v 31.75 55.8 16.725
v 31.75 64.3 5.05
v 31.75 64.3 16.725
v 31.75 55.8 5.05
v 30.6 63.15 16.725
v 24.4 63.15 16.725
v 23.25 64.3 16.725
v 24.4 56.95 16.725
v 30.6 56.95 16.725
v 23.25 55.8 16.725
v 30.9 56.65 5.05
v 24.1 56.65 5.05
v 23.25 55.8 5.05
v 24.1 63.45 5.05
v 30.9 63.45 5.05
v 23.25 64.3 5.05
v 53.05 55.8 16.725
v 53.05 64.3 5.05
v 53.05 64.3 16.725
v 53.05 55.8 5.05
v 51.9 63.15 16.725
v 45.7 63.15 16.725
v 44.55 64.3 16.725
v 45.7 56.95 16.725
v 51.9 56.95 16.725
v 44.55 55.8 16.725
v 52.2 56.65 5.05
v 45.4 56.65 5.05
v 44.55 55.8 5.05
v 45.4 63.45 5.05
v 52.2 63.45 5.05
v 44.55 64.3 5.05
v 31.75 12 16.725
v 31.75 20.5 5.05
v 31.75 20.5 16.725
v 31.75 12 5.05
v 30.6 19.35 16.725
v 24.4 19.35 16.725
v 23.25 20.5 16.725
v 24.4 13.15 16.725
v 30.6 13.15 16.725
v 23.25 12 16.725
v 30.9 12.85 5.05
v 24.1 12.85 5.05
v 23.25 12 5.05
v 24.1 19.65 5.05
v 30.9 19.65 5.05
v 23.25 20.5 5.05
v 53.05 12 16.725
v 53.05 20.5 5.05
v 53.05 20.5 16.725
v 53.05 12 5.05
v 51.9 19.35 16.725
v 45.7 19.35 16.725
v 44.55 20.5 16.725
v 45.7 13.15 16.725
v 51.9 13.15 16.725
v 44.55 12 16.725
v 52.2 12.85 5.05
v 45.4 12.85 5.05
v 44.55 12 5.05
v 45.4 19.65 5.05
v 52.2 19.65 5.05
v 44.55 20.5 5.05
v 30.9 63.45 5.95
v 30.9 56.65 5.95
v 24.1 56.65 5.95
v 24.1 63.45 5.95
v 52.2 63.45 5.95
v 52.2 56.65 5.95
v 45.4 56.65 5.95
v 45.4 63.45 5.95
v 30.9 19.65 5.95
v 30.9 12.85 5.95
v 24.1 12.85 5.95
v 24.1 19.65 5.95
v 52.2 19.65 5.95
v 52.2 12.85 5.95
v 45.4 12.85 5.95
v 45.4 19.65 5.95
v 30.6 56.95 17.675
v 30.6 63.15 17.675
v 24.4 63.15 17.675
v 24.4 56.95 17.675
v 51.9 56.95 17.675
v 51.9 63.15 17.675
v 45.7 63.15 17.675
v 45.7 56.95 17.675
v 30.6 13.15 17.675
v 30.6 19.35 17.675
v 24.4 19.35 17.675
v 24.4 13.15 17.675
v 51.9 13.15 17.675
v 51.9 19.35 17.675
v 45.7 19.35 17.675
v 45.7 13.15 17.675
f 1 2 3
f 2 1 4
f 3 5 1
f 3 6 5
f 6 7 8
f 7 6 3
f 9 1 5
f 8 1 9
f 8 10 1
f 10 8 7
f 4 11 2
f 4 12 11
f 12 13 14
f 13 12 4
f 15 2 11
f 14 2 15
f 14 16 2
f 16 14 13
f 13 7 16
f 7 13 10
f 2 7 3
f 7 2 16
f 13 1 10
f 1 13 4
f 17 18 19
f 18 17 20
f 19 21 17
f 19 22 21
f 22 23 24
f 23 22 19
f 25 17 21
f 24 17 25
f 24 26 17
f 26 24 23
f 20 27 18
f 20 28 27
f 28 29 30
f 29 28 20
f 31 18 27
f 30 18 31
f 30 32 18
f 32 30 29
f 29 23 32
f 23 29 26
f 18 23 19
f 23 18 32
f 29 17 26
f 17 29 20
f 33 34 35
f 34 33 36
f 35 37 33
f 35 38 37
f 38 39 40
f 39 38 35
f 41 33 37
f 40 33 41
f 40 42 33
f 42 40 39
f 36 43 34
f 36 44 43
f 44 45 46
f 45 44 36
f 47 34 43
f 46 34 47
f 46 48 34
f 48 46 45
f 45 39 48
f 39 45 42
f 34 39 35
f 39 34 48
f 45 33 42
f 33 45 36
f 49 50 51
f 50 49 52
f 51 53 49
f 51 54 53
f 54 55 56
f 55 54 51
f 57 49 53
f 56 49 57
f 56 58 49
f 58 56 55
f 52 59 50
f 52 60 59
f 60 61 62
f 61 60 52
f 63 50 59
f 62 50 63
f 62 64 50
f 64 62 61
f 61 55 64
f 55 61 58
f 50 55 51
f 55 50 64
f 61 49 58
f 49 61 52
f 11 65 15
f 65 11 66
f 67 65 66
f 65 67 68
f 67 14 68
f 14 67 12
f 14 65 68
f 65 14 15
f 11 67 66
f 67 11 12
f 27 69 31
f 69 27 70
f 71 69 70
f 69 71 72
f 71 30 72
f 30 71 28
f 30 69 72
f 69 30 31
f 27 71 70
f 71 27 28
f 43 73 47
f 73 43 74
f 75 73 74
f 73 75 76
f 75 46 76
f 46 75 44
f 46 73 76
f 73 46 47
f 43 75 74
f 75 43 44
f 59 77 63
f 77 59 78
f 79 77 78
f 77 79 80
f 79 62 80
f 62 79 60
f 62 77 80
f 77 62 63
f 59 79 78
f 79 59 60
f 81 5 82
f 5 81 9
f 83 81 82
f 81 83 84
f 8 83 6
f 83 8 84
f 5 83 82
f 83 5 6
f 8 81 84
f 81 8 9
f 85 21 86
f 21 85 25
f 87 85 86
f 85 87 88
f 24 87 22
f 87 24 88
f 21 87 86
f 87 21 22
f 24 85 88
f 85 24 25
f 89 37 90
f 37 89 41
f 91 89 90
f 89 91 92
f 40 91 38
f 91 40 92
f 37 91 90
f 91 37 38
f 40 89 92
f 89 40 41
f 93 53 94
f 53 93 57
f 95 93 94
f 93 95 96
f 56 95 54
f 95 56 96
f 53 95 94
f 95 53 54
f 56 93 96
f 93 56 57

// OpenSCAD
// file: module_Cubo.scad
module Cubo(){
    difference(){
        cube([50,50,50]);
        #translate([2.5,2.5,2.5])cube(45);
        #translate([25,25,0])cylinder(h=2.5,r1=15,r2=15);
        #translate([25,25,47.5])cylinder(h=2.5,r1=15,r2=15);
        rotate([90,0,0])translate([25,25,-2.5])cylinder(h=2.5,r1=15,r2=15);
        rotate([90,0,0])translate([25,25,-50])cylinder(h=2.5,r1=15,r2=15);
        rotate([0,90,0])translate([-25,25,])cylinder(h=2.5,r1=15,r2=15);
        rotate([0,90,0])translate([-25,25,47.5])cylinder(h=2.5,r1=15,r2=15);
    }
}
// main file
// ----- ----- Declaração de Variáveis ----- ----- //

res=10;

folga1=0.15;
folga2=0.05;

cubo=50;

ds_splh=(44+40)/2;
d_splh=ds_splh/12; //3.5

diff_splh_x=17;
diff_splh_y=10;
diff_splh_z=19.25;

raio_bobina=12.5;

xeuss_x=76.3;
xeuss_y=76.3;
xeuss_z=5;

xt=14;
yt=89.8-xeuss_y;
zt=xeuss_z;

rx=6.6/2;
tr_x=13.65;
tr_cil=10+rx;
cc = (56.5+43.45)/2;

Xdelize=xeuss_x;
Ydelize=25;
Zdelize=11.7-xeuss_z;

alt_poly=15-Zdelize-xeuss_z;
esp_poly=2.5;
apt_poly=7.4;
poly5=5;

x_encaixe=xeuss_x-2*poly5;
y_encaixe=20;
z_encaixe=3;

splh_x=20;
splh_y=10;
splh_z=60.35-z_encaixe;
r_splh=1;

alt_bob=11;

esp_pottop=3;
long_pottop=6.5;
alt_quad=5;
trans_aux2=-diff_splh_z/2-cubo/2+xeuss_z+Zdelize+splh_z-splh_x/2+diff_splh_x/2+z_encaixe-folga1-esp_pottop-alt_bob-alt_quad;
desce_enough=trans_aux2-xeuss_z-folga2;
gordura=1;

// ----- ----- Declaração de Bibliotecas ----- ----- //
use <funcoes_GFCx.scad>
use <module_Cubo.scad>
use <module_MontagemDoCubo.scad>

//não apague, mas também não descomente
//translate([tr_x,xeuss_y,0])cube([xt,yt,zt]); 

// ----- ----- Declaração de Funções ----- ----- //
module pottop(param,param2,folga,alt){
    translate([-param-folga,-param-folga,-param-folga]){
        cube([param+param2,param,param+param2]);
        cube([param,param+param2,param+param2]);
        translate([0,0,-alt])cube([param+param2,param+param2,param+alt]);
    }
}

/*
// ----- ----- Base Atuador Manual Linear ----- ----- //
difference(){
    translate([0,0,0])cube([xeuss_x,xeuss_y,xeuss_z]);
    translate([tr_cil,tr_cil,0]){
        #translate([0,0,0])cylinder(xeuss_z,rx+folga1,rx+folga1,$fn=res);
        #translate([cc,0,0])cylinder(xeuss_z,rx+folga1,rx+folga1,$fn=res);
        #translate([0,cc,0])cylinder(xeuss_z,rx+folga1,rx+folga1,$fn=res);
        #translate([cc,cc,0])cylinder(xeuss_z,rx+folga1,rx+folga1,$fn=res);
    }
}

// ----- ----- Suporte de Amostras ----- ----- //
translate([0,xeuss_y/2-Ydelize/2,xeuss_z])cube([Xdelize,Ydelize,Zdelize]);
translate([0,xeuss_y/2-Ydelize/2,xeuss_z+Zdelize]){
    linear_extrude(alt_poly)polygon([[0,0],[xeuss_x,0],[xeuss_x,apt_poly],[xeuss_x-poly5,esp_poly-folga1],[poly5,esp_poly-folga1]]);
    translate([0,Ydelize,0])linear_extrude(alt_poly)polygon([[0,0],[xeuss_x,0],[xeuss_x,-apt_poly],[xeuss_x-poly5,-esp_poly+folga1],[poly5,-esp_poly+folga1]]);
}
translate([poly5,xeuss_y/2-Ydelize/2+esp_poly,xeuss_z+Zdelize]){
    cube([x_encaixe,y_encaixe,z_encaixe]);
    difference(){
        translate([x_encaixe/2-splh_x/2,y_encaixe/2-splh_y/2,z_encaixe])cube([splh_x,splh_y,splh_z]);
        #translate([x_encaixe/2-splh_x/2+splh_x/2-diff_splh_x/2,y_encaixe/2-splh_y/2,splh_z-(splh_x/2-diff_splh_x/2)-diff_splh_z+z_encaixe])
        #cube([diff_splh_x,diff_splh_y,diff_splh_z]);
        #translate([0,0,-10])
        #translate([x_encaixe/2-splh_x/2+splh_x/2-(4*d_splh)/2,y_encaixe/2,splh_z-(splh_x/2-diff_splh_x/2)-diff_splh_z+z_encaixe])
        #funcao_2d_array_cilindros(r_splh,d_splh,10+splh_x/2-diff_splh_x/2+diff_splh_z,5,1,1,res,"Conjunto Sample Holder");
        #translate([0,0,-10])
        #translate([x_encaixe/2-splh_x/2+splh_x/2-(d_splh*4)/2,y_encaixe/2,splh_z-(splh_x/2-diff_splh_x/2)-diff_splh_z+z_encaixe])
        #3d_array_sp_cb(1,1,1,1,d_splh,30,5,1,1,1,"sphere",res,"Conjunto Sample Holder Esferas");
    }
}

difference(){
    translate([xeuss_x/2-cubo/2,xeuss_x/2-cubo/2,0])
    translate([0,0,splh_z-(splh_x/2-diff_splh_x/2)-diff_splh_z+z_encaixe])
    translate([0,0,xeuss_z+Zdelize])
    translate([0,0,diff_splh_z/2-cubo/2]){
        MontagemDoCubo();
        //Cubo();
        
        pottop(esp_pottop,long_pottop,folga1,alt_bob);
        translate([50,0,0])rotate([0,0,90])pottop(esp_pottop,long_pottop,folga1,alt_bob);
        translate([50,50,0])rotate([0,0,2*90])pottop(esp_pottop,long_pottop,folga1,alt_bob);
        translate([0,50,0])rotate([0,0,3*90])pottop(esp_pottop,long_pottop,folga1,alt_bob);

        translate([-folga1-esp_pottop,-folga1-esp_pottop,-folga1-esp_pottop-alt_bob-alt_quad])
        cube([cubo+2*esp_pottop+2*folga1,cubo+2*esp_pottop+2*folga1,alt_quad]);
        
        translate([0,0,-desce_enough-folga2]){
            translate([(long_pottop+esp_pottop)*1.5,esp_pottop,0])
            translate([-folga1-esp_pottop,-folga1-esp_pottop,-folga1-esp_pottop-alt_bob-alt_quad])
            cube([long_pottop,long_pottop,desce_enough]);
            translate([-(long_pottop+esp_pottop)*1.5,esp_pottop,0])
            translate([cubo+2*esp_pottop+2*folga1-long_pottop,0,0])
            translate([-folga1-esp_pottop,-folga1-esp_pottop,-folga1-esp_pottop-alt_bob-alt_quad])
            cube([long_pottop,long_pottop,desce_enough]);
            translate([0,cubo+2*esp_pottop+2*folga1-long_pottop-esp_pottop,0]){
                translate([(long_pottop+esp_pottop)*1.5,0,0])
                translate([-folga1-esp_pottop,-folga1-esp_pottop,-folga1-esp_pottop-alt_bob-alt_quad])
                cube([long_pottop,long_pottop,desce_enough]);
                translate([-(long_pottop+esp_pottop)*1.5,0,0])
                translate([cubo+2*esp_pottop+2*folga1-long_pottop,0,0])
                translate([-folga1-esp_pottop,-folga1-esp_pottop,-folga1-esp_pottop-alt_bob-alt_quad])
                cube([long_pottop,long_pottop,desce_enough]);
            }
        }
    }
    #translate([poly5,xeuss_y/2-Ydelize/2+esp_poly,xeuss_z+Zdelize])
    #translate([x_encaixe/2-(splh_x*1.2)/2,y_encaixe/2-(splh_y*1.2)/2,z_encaixe])
    #cube([splh_x*1.2,splh_y*1.2,splh_z*0.2]);
    
    #translate([0,0,gordura])
    #translate([xeuss_x/2-cubo/2,xeuss_x/2-cubo/2,0])
    #translate([0,0,splh_z-(splh_x/2-diff_splh_x/2)-diff_splh_z+z_encaixe])
    #translate([0,0,xeuss_z+Zdelize])
    #translate([0,0,diff_splh_z/2-cubo/2])
    translate([0,0,-desce_enough-folga2]){
        translate([(long_pottop+esp_pottop)*1.5,esp_pottop,0])
        translate([-folga1-esp_pottop,-folga1-esp_pottop,-folga1-esp_pottop-alt_bob-alt_quad])
        cube([long_pottop,long_pottop,desce_enough]);
        translate([-(long_pottop+esp_pottop)*1.5,esp_pottop,0])
        translate([cubo+2*esp_pottop+2*folga1-long_pottop,0,0])
        translate([-folga1-esp_pottop,-folga1-esp_pottop,-folga1-esp_pottop-alt_bob-alt_quad])
        cube([long_pottop,long_pottop,desce_enough]);
        translate([0,cubo+2*esp_pottop+2*folga1-long_pottop-esp_pottop,0]){
            translate([(long_pottop+esp_pottop)*1.5,0,0])
            translate([-folga1-esp_pottop,-folga1-esp_pottop,-folga1-esp_pottop-alt_bob-alt_quad])
            cube([long_pottop,long_pottop,desce_enough]);
            translate([-(long_pottop+esp_pottop)*1.5,0,0])
            translate([cubo+2*esp_pottop+2*folga1-long_pottop,0,0])
            translate([-folga1-esp_pottop,-folga1-esp_pottop,-folga1-esp_pottop-alt_bob-alt_quad])
            cube([long_pottop,long_pottop,desce_enough]);
        }
    }
}
*/
difference(){
    translate([0,0,folga2])
    translate([xeuss_x/2-cubo/2,xeuss_x/2-cubo/2,0])
    translate([0,0,splh_z-(splh_x/2-diff_splh_x/2)-diff_splh_z+z_encaixe])
    translate([0,0,xeuss_z+Zdelize])
    translate([0,0,diff_splh_z/2-cubo/2])
    translate([0,0,-desce_enough-folga2]){
        translate([-gordura,-gordura,0])
        translate([(long_pottop+esp_pottop)*1.5,esp_pottop,0])
        translate([-folga1-esp_pottop,-folga1-esp_pottop,-folga1-esp_pottop-alt_bob-alt_quad])
        cube([long_pottop+2*gordura,long_pottop+2*gordura,desce_enough-folga2]);
        translate([-gordura,-gordura,0])
        translate([-(long_pottop+esp_pottop)*1.5,esp_pottop,0])
        translate([cubo+2*esp_pottop+2*folga1-long_pottop,0,0])
        translate([-folga1-esp_pottop,-folga1-esp_pottop,-folga1-esp_pottop-alt_bob-alt_quad])
        cube([long_pottop+2*gordura,long_pottop+2*gordura,desce_enough-folga2]);
        translate([0,cubo+2*esp_pottop+2*folga1-long_pottop-esp_pottop,0]){
            translate([-gordura,-gordura,0])
            translate([(long_pottop+esp_pottop)*1.5,0,0])
            translate([-folga1-esp_pottop,-folga1-esp_pottop,-folga1-esp_pottop-alt_bob-alt_quad])
            cube([long_pottop+2*gordura,long_pottop+2*gordura,desce_enough-folga2]);
            translate([-gordura,-gordura,0])
            translate([-(long_pottop+esp_pottop)*1.5,0,0])
            translate([cubo+2*esp_pottop+2*folga1-long_pottop,0,0])
            translate([-folga1-esp_pottop,-folga1-esp_pottop,-folga1-esp_pottop-alt_bob-alt_quad])
            cube([long_pottop+2*gordura,long_pottop+2*gordura,desce_enough-folga2]);
        }
    }
    #translate([0,0,-folga2])
    #translate([xeuss_x/2-cubo/2,xeuss_x/2-cubo/2,0])
    #translate([0,0,splh_z-(splh_x/2-diff_splh_x/2)-diff_splh_z+z_encaixe])
    #translate([0,0,xeuss_z+Zdelize])
    #translate([0,0,diff_splh_z/2-cubo/2])
    #translate([0,0,-desce_enough-folga2]){
        #translate([-folga1,-folga1,0])
        #translate([(long_pottop+esp_pottop)*1.5,esp_pottop,0])
        #translate([-folga1-esp_pottop,-folga1-esp_pottop,-folga1-esp_pottop-alt_bob-alt_quad])
        #cube([long_pottop+2*folga1,long_pottop+2*folga1,gordura]);
        #translate([-folga1,-folga1,0])
        #translate([-(long_pottop+esp_pottop)*1.5,esp_pottop,0])
        #translate([cubo+2*esp_pottop+2*folga1-long_pottop,0,0])
        #translate([-folga1-esp_pottop,-folga1-esp_pottop,-folga1-esp_pottop-alt_bob-alt_quad])
        #cube([long_pottop+2*folga1,long_pottop+2*folga1,gordura]);
        #translate([0,cubo+2*esp_pottop+2*folga1-long_pottop-esp_pottop,0]){
            #translate([-folga1,-folga1,0])
            #translate([(long_pottop+esp_pottop)*1.5,0,0])
            #translate([-folga1-esp_pottop,-folga1-esp_pottop,-folga1-esp_pottop-alt_bob-alt_quad])
            #cube([long_pottop+2*folga1,long_pottop+2*folga1,gordura]);
            #translate([-folga1,-folga1,0])
            #translate([-(long_pottop+esp_pottop)*1.5,0,0])
            #translate([cubo+2*esp_pottop+2*folga1-long_pottop,0,0])
            #translate([-folga1-esp_pottop,-folga1-esp_pottop,-folga1-esp_pottop-alt_bob-alt_quad])
            #cube([long_pottop+2*folga1,long_pottop+2*folga1,gordura]);
        }
    }
}


translate([0,0,gordura+folga2])
translate([xeuss_x/2-cubo/2,xeuss_x/2-cubo/2,0])
translate([0,0,splh_z-(splh_x/2-diff_splh_x/2)-diff_splh_z+z_encaixe])
translate([0,0,xeuss_z+Zdelize])
translate([0,0,diff_splh_z/2-cubo/2])
translate([0,0,-desce_enough-folga2]){
    translate([folga1,folga1,0])
    translate([(long_pottop+esp_pottop)*1.5,esp_pottop,0])
    translate([-folga1-esp_pottop,-folga1-esp_pottop,-folga1-esp_pottop-alt_bob-alt_quad])
    cube([long_pottop-2*folga1,long_pottop-2*folga1,desce_enough-2*folga2]);
    translate([folga1,folga1,0])
    translate([-(long_pottop+esp_pottop)*1.5,esp_pottop,0])
    translate([cubo+2*esp_pottop+2*folga1-long_pottop,0,0])
    translate([-folga1-esp_pottop,-folga1-esp_pottop,-folga1-esp_pottop-alt_bob-alt_quad])
    cube([long_pottop-2*folga1,long_pottop-2*folga1,desce_enough-2*folga2]);
    translate([0,cubo+2*esp_pottop+2*folga1-long_pottop-esp_pottop,0]){
        translate([folga1,folga1,0])
        translate([(long_pottop+esp_pottop)*1.5,0,0])
        translate([-folga1-esp_pottop,-folga1-esp_pottop,-folga1-esp_pottop-alt_bob-alt_quad])
        cube([long_pottop-2*folga1,long_pottop-2*folga1,desce_enough-2*folga2]);
        translate([folga1,folga1,0])
        translate([-(long_pottop+esp_pottop)*1.5,0,0])
        translate([cubo+2*esp_pottop+2*folga1-long_pottop,0,0])
        translate([-folga1-esp_pottop,-folga1-esp_pottop,-folga1-esp_pottop-alt_bob-alt_quad])
        cube([long_pottop-2*folga1,long_pottop-2*folga1,desce_enough-2*folga2]);
    }
}
